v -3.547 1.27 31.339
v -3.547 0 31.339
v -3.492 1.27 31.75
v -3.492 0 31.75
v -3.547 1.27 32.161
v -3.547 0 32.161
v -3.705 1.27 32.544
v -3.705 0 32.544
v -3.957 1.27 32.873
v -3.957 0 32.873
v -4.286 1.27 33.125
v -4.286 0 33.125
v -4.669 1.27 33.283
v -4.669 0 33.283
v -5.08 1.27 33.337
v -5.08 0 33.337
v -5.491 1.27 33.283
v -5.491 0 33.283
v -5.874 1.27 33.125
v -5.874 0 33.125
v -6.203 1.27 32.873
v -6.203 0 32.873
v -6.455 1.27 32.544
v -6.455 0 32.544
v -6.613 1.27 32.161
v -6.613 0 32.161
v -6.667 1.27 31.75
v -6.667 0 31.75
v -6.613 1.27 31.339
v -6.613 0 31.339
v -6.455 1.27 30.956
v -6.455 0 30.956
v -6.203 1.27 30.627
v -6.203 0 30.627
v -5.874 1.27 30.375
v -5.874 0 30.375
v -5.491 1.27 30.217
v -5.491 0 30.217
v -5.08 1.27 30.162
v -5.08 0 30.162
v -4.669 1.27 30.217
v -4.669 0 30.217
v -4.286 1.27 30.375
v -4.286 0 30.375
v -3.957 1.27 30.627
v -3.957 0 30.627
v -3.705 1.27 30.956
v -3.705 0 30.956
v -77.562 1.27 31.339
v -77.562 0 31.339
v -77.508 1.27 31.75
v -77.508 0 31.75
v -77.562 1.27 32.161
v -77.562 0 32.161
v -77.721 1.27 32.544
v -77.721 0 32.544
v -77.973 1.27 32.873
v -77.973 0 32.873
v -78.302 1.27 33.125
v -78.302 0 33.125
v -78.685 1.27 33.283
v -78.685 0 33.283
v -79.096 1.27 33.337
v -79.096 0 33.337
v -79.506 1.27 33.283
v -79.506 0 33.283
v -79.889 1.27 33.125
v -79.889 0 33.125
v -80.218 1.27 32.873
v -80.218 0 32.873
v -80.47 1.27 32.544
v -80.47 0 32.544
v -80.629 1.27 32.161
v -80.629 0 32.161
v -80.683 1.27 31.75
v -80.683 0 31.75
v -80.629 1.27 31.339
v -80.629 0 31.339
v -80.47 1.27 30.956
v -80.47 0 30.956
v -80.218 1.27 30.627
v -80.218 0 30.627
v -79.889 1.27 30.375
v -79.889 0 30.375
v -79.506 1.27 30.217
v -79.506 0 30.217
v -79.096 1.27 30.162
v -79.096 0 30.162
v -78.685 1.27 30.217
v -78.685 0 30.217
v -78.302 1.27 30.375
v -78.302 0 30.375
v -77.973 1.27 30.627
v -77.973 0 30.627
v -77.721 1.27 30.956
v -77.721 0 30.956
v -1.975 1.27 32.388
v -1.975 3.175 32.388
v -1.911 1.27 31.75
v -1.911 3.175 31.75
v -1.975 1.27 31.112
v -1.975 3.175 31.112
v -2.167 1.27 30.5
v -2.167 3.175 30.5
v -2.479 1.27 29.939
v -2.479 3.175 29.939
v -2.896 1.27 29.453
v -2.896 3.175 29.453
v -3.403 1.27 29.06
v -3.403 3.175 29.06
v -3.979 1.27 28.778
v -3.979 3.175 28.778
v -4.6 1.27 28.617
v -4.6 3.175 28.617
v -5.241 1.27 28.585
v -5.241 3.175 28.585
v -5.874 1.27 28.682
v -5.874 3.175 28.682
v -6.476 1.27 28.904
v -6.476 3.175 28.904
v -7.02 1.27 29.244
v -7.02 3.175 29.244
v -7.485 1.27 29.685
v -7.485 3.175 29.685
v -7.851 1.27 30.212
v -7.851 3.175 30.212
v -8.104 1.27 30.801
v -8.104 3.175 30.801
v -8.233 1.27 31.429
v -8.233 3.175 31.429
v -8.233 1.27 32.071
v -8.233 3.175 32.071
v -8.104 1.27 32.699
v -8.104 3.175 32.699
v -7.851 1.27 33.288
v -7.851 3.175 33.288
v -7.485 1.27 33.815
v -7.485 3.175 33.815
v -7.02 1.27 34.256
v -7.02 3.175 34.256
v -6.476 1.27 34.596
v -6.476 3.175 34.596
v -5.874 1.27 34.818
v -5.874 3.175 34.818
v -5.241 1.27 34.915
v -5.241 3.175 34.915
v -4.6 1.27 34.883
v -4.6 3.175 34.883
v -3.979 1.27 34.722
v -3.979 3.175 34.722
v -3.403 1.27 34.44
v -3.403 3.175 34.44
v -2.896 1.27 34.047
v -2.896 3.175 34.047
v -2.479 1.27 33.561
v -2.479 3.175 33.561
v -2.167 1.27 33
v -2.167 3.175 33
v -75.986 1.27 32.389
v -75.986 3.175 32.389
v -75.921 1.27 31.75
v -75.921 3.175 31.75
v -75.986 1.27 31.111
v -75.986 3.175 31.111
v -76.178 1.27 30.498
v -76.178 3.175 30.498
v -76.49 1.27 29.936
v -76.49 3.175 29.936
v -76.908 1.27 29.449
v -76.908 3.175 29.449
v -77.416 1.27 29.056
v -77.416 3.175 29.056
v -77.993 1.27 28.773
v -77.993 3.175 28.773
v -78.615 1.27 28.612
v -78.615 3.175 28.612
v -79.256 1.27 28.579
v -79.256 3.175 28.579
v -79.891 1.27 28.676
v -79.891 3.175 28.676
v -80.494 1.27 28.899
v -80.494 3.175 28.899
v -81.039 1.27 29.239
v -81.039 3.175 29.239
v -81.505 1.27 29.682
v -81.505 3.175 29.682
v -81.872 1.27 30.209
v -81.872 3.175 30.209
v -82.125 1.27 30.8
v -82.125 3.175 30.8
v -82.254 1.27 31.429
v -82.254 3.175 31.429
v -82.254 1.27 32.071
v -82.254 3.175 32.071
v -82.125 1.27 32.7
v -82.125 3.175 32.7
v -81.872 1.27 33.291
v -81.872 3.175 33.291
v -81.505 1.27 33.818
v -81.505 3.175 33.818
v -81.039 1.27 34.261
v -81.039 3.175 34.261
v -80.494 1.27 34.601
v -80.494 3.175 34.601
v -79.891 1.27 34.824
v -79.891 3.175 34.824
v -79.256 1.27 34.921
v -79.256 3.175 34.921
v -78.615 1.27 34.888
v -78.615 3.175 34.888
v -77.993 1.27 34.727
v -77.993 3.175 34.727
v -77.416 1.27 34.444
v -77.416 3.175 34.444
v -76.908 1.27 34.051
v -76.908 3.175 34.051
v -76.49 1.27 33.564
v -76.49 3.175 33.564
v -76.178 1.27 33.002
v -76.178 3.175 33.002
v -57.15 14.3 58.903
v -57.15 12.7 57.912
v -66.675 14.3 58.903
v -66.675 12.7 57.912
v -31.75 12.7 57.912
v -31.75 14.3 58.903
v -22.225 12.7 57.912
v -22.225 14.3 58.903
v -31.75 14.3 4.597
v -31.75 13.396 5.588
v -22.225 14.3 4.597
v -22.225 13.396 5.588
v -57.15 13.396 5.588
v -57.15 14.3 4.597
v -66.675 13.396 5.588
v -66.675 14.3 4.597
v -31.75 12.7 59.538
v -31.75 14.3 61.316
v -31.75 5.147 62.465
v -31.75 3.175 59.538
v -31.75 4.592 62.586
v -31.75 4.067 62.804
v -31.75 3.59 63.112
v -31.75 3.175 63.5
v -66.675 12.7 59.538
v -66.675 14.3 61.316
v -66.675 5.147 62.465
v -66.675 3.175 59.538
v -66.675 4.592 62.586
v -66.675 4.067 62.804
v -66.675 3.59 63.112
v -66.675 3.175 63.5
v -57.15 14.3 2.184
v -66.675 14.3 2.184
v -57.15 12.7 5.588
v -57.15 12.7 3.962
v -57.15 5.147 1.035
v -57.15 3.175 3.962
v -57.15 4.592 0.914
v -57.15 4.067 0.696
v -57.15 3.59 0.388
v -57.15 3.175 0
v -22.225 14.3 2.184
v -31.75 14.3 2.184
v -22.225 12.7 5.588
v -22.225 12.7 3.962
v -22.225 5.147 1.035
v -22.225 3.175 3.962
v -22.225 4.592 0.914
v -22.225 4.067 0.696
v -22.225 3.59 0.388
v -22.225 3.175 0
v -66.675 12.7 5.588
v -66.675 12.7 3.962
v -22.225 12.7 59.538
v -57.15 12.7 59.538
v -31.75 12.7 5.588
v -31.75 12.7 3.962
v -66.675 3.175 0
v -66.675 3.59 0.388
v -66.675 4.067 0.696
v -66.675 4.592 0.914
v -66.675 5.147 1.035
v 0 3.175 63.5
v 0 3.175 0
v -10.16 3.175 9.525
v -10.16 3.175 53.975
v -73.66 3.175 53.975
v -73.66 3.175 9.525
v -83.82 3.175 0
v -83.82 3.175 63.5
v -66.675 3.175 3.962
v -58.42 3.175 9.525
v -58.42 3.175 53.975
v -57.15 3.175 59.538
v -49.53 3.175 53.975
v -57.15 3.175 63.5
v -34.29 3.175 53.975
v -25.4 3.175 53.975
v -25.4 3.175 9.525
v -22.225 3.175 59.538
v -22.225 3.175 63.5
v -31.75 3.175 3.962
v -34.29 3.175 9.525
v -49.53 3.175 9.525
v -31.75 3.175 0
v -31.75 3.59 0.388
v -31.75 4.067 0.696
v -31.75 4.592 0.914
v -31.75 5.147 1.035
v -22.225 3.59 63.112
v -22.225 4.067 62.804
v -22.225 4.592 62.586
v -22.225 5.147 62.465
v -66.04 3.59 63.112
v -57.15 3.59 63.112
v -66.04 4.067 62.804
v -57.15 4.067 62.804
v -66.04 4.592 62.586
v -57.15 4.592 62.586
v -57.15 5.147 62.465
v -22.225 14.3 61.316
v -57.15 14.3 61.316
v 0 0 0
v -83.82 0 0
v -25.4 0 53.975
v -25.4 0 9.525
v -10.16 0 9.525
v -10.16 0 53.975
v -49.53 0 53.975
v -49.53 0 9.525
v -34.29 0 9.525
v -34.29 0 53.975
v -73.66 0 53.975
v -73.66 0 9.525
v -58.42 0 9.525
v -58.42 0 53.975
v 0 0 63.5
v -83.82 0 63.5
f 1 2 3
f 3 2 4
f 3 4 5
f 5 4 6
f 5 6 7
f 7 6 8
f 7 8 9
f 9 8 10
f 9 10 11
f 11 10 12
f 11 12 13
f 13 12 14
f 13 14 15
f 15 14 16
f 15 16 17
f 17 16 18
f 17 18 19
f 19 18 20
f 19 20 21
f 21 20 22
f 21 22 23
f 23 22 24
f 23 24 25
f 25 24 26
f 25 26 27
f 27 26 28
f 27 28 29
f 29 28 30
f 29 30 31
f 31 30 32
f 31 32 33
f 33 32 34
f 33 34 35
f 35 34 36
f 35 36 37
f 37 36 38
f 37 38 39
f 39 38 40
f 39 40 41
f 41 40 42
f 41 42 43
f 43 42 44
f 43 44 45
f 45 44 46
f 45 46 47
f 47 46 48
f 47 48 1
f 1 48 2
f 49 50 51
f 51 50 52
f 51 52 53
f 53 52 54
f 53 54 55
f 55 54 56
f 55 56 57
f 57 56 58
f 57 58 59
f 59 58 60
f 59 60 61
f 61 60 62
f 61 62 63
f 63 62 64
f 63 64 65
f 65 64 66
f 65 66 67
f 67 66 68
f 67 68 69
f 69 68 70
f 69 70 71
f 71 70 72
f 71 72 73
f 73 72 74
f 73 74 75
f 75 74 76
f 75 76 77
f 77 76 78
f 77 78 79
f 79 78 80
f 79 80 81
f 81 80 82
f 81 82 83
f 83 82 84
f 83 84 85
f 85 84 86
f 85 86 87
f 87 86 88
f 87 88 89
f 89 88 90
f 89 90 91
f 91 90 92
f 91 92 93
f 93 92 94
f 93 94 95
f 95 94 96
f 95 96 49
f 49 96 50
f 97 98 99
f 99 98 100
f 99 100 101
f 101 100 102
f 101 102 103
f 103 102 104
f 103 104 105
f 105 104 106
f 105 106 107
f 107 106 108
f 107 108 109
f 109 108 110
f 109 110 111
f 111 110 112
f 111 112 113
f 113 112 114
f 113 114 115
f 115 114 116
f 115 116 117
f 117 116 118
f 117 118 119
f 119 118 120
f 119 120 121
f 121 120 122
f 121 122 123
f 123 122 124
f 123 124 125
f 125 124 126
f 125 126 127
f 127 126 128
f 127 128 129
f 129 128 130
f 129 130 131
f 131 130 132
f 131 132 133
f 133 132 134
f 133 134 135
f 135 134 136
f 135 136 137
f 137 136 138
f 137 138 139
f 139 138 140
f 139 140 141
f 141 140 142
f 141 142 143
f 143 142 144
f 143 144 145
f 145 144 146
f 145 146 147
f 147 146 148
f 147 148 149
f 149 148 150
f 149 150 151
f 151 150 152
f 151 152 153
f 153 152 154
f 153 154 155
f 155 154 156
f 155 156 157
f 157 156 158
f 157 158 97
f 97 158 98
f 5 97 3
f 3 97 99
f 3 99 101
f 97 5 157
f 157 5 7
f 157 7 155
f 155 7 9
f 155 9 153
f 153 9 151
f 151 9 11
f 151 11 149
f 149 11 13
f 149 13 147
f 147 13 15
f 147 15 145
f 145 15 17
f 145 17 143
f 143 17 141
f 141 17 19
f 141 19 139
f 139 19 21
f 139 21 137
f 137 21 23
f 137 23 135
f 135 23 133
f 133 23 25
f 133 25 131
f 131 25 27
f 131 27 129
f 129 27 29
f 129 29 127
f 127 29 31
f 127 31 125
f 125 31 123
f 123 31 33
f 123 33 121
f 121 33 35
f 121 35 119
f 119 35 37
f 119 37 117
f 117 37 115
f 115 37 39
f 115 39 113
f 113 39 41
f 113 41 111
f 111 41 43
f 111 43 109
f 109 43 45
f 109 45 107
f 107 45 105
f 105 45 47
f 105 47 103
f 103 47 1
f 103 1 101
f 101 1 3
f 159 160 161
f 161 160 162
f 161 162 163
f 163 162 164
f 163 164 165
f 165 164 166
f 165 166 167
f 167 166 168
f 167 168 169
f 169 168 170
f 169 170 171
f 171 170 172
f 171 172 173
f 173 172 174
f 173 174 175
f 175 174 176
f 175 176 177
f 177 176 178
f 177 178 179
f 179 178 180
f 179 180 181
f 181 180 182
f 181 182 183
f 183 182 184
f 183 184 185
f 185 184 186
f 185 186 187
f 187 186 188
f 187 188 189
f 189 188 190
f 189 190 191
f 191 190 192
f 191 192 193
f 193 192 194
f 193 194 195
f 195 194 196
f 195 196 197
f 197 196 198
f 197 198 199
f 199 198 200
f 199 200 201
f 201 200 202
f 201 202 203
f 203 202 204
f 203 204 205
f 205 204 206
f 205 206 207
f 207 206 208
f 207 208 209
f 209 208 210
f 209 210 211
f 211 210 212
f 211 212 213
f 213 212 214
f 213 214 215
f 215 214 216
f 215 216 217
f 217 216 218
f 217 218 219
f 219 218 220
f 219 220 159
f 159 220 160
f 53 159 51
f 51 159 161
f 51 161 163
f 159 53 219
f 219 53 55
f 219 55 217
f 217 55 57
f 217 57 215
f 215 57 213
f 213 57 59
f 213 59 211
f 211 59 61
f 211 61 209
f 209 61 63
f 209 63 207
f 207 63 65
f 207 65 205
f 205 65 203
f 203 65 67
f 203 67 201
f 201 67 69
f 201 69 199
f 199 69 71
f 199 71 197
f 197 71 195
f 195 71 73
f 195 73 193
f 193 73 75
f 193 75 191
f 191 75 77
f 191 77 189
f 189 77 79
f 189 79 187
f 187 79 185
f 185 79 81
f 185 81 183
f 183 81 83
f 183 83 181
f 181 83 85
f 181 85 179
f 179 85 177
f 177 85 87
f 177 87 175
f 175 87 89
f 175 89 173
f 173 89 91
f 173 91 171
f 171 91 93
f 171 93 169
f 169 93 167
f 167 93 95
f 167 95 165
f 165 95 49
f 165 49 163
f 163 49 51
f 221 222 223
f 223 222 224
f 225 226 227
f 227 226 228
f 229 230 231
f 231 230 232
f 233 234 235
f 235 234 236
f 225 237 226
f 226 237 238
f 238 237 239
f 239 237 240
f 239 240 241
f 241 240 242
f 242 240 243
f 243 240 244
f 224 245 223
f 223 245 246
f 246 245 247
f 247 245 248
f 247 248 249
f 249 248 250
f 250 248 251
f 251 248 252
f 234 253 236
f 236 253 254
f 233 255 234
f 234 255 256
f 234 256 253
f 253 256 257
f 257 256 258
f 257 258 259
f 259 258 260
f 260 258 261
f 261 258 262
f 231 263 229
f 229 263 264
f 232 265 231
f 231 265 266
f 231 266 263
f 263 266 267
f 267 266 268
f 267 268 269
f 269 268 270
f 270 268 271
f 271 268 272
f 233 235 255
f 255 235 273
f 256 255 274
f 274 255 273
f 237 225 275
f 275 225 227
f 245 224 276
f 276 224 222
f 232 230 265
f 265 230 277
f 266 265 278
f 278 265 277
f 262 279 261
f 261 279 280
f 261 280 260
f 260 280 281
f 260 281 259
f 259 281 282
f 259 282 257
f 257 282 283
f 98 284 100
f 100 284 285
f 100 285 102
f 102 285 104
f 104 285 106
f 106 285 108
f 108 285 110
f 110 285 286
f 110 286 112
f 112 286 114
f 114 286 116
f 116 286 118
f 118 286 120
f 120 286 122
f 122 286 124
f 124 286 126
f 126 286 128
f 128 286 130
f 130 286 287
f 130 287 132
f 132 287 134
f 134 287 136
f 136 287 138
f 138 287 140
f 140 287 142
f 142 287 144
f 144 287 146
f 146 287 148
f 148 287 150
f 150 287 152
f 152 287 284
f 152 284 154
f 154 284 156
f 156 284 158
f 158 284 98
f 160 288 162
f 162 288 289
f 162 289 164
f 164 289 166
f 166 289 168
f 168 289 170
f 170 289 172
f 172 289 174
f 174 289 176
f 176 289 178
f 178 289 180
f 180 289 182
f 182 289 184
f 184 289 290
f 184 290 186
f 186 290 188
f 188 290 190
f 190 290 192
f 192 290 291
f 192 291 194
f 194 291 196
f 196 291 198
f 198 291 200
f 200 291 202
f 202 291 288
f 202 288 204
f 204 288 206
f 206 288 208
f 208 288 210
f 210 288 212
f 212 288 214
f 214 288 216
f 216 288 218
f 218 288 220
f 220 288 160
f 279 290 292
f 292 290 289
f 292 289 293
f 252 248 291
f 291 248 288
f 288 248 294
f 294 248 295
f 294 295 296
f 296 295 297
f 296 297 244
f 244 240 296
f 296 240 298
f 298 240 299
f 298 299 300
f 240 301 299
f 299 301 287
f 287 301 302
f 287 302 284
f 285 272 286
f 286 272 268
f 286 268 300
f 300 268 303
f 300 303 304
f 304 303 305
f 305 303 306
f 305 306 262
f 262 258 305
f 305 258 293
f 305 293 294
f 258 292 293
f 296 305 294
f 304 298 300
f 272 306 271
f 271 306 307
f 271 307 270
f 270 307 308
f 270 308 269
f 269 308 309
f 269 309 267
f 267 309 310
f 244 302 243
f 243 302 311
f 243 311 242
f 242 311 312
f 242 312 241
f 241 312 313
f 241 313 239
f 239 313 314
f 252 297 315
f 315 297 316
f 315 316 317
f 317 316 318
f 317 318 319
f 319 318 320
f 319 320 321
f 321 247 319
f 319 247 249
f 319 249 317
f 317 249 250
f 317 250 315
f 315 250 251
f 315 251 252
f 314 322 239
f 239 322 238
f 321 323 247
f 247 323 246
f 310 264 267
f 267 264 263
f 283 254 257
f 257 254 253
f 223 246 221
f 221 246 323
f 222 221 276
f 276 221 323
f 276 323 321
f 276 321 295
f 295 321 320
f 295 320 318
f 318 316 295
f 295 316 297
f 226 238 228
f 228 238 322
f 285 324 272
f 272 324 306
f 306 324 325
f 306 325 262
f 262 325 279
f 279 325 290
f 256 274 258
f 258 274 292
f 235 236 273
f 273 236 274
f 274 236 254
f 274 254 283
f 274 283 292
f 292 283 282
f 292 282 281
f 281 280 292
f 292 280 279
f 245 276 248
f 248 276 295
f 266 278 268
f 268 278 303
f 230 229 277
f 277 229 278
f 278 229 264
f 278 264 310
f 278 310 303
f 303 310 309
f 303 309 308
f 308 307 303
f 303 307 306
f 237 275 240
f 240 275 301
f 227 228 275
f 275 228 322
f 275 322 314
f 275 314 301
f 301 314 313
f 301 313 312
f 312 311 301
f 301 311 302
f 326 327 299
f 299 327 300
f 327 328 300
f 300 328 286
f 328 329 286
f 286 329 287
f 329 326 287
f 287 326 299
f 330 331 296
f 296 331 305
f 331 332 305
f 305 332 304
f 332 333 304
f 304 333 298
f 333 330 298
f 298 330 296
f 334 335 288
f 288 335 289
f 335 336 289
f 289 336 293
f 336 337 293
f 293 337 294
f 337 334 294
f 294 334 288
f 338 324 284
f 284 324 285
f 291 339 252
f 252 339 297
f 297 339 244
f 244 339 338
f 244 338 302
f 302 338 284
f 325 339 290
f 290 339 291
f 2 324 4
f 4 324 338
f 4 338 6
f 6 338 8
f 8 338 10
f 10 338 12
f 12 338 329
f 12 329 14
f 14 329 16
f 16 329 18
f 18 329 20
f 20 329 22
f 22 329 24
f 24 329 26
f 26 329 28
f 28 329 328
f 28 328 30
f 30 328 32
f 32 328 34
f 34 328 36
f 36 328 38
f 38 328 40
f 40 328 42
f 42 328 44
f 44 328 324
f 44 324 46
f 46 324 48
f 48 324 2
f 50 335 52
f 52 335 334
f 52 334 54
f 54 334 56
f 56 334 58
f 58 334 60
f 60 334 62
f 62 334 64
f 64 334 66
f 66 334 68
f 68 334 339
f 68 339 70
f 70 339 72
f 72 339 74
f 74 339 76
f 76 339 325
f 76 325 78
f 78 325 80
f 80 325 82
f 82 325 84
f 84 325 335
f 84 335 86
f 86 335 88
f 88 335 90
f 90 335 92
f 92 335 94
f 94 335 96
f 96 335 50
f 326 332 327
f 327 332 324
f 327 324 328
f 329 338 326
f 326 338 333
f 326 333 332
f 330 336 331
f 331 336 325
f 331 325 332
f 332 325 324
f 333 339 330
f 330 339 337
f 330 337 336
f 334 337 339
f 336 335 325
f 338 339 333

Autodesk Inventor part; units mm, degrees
ref_plane "YZ Plane" through (0, 0, 0) normal (1, 0, 0) x (0, 1, 0)
ref_plane "XZ Plane" through (0, 0, 0) normal (0, 1, 0) x (-1, 0, 0)
ref_plane "XY Plane" through (0, 0, 0) normal (0, 0, 1) x (1, 0, 0)
sketch "Sketch1" plane through (0, 0, 0) normal (0, 1, 0) x (-1, 0, 0)
  line L0 (0, 0) -> (83.82, 0)
  line L1 (83.82, 0) -> (83.82, 63.5)
  line L2 (83.82, 63.5) -> (0, 63.5)
  line L3 (0, 63.5) -> (0, 0)
  line L4 (73.66, 53.975) -> (58.42, 53.975)
  line L5 (58.42, 53.975) -> (58.42, 9.525)
  line L6 (58.42, 9.525) -> (73.66, 9.525)
  line L7 (73.66, 9.525) -> (73.66, 53.975)
  line L8 (49.53, 53.975) -> (34.29, 53.975)
  line L9 (34.29, 53.975) -> (34.29, 9.525)
  line L10 (34.29, 9.525) -> (49.53, 9.525)
  line L11 (49.53, 9.525) -> (49.53, 53.975)
  line L12 (25.4, 53.975) -> (10.16, 53.975)
  line L13 (10.16, 53.975) -> (10.16, 9.525)
  line L14 (10.16, 9.525) -> (25.4, 9.525)
  line L15 (25.4, 9.525) -> (25.4, 53.975)
  dimension "d0" = 83.82
  dimension "d1" = 63.5
  dimension "d41" = 10.16
  dimension "d42" = 8.89
  dimension "d43" = 8.89
  dimension "d44" = 15.24
  dimension "d45" = 15.24
  dimension "d46" = 15.24
extrude "Extrusion1" add sketch "Sketch1" along normal blind 3.175
sketch "Sketch4" plane through (0, 3.175, 0) normal (0, 1, 0) x (1, 0, 0)
  line L0 (-83.82, -63.5) -> (0, -63.5) projected
  line L1 (0, 0) -> (-83.82, 0) projected
  line L2 (-66.675, 0) -> (-57.15, 0)
  line L3 (-57.15, 0) -> (-57.15, -3.9624)
  line L4 (-57.15, -3.9624) -> (-66.675, -3.9624)
  line L5 (-66.675, -3.9624) -> (-66.675, 0)
  line L6 (-31.75, 0) -> (-22.225, 0)
  line L7 (-22.225, 0) -> (-22.225, -3.9624)
  line L8 (-22.225, -3.9624) -> (-31.75, -3.9624)
  line L9 (-31.75, -3.9624) -> (-31.75, 0)
  line L10 (-66.675, -63.5) -> (-57.15, -63.5)
  line L11 (-57.15, -63.5) -> (-57.15, -59.5376)
  line L12 (-57.15, -59.5376) -> (-66.675, -59.5376)
  line L13 (-66.675, -59.5376) -> (-66.675, -63.5)
  line L14 (-31.75, -63.5) -> (-22.225, -63.5)
  line L15 (-22.225, -63.5) -> (-22.225, -59.5376)
  line L16 (-22.225, -59.5376) -> (-31.75, -59.5376)
  line L17 (-31.75, -59.5376) -> (-31.75, -63.5)
extrude "Extrusion4" add sketch "Sketch4" along normal blind 11.1252
sketch "Sketch5" plane through (-22.225, 3.175, 63.5) normal (1, 0, 0) x (0, 0, -1)
  line L0 (3.9624, 0) -> (0, 0) projected
  line L1 (3.9624, 0) -> (3.9624, 11.1252) projected
  line L2 (0, 11.1252) -> (3.9624, 11.1252) projected
  line L3 (0, 0) -> (0, 11.1252) projected
  line L4 (3.9624, 12.7) -> (2.1844, 12.7)
  line L5 (3.9624, -0.6232) -> (0.7874, -0.6232)
  line L6 (2.1844, 11.1252) -> (0.7874, 0)
  line L7 (0.7874, 0) -> (0, 0)
  line L8 (0, 0) -> (0, 11.1252)
  line L9 (0, 11.1252) -> (2.1844, 11.1252)
  line L10 (59.5376, 0) -> (63.5, 0)
  line L11 (59.5376, 0) -> (59.5376, 11.1252)
  line L12 (63.5, 11.1252) -> (59.5376, 11.1252)
  line L13 (63.5, 0) -> (63.5, 11.1252)
  line L14 (59.5376, 12.7) -> (61.3156, 12.7)
  line L15 (59.5376, -0.6232) -> (62.7126, -0.6232)
  line L16 (61.3156, 11.1252) -> (62.7126, 0)
  line L17 (62.7126, 0) -> (63.5, 0)
  line L18 (63.5, 0) -> (63.5, 11.1252)
  line L19 (63.5, 11.1252) -> (61.3156, 11.1252)
  point P0 (63.5, -3.175)
  dimension "d17" = 1.778
  dimension "d18" = 3.175
extrude "Extrusion5" cut sketch "Sketch5" against normal blind 44.45 contours L0 L3 L2 L6 | L16 L12 L13 L10
fillet "Fillet1" radius 3.175 4 edges at (-61.9125, 3.175, 62.7126) (-26.9875, 3.175, 62.7126) (-26.9875, 3.175, 0.7874) (-61.9125, 3.175, 0.7874)
sketch "Sketch6" plane through (0, 14.3002, 0) normal (0, 1, 0) x (1, 0, 0)
  line L0 (-22.225, -59.5376) -> (-31.75, -59.5376) projected
  line L1 (-31.75, -59.5376) -> (-22.225, -59.5376)
  line L2 (-22.225, -59.5376) -> (-22.225, -57.912)
  line L3 (-22.225, -57.912) -> (-31.75, -57.912)
  line L4 (-31.75, -57.912) -> (-31.75, -59.5376)
  line L5 (-57.15, -59.5376) -> (-66.675, -59.5376)
  line L6 (-66.675, -59.5376) -> (-66.675, -57.912)
  line L7 (-66.675, -57.912) -> (-57.15, -57.912)
  line L8 (-57.15, -57.912) -> (-57.15, -59.5376)
  line L9 (-31.75, -2.1844) -> (-22.225, -2.1844)
  line L10 (-22.225, -2.1844) -> (-22.225, -3.9624)
  line L11 (-22.225, -3.9624) -> (-31.75, -3.9624)
  line L12 (-31.75, -3.9624) -> (-31.75, -2.1844)
  line L13 (-31.75, -3.9624) -> (-22.225, -3.9624)
  line L14 (-22.225, -3.9624) -> (-22.225, -5.588)
  line L15 (-22.225, -5.588) -> (-31.75, -5.588)
  line L16 (-31.75, -5.588) -> (-31.75, -3.9624)
  line L17 (-57.15, -3.9624) -> (-66.675, -3.9624)
  line L18 (-66.675, -3.9624) -> (-66.675, -5.588)
  line L19 (-66.675, -5.588) -> (-57.15, -5.588)
  line L20 (-57.15, -5.588) -> (-57.15, -3.9624)
  line L21 (-66.675, -3.9624) -> (-57.15, -3.9624) projected
  point P0 (0, 0)
  dimension "d50" = 1.6256
  dimension "d51" = 1.6256
  dimension "d52" = 1.6256
  dimension "d53" = 1.6256
  dimension "d54" = 0
extrude "Extrusion6" add sketch "Sketch6" against normal blind 1.6002 contours L0 L4 L3 L2 | L5 L6 L7 L8 | L11 L14 L15 L16 | L20 L19 L18 L17
sketch "Sketch7" plane through (-22.225, 3.175, 63.5) normal (1, 0, 0) x (0, 0, -1)
  line L0 (5.588, 11.1252) -> (5.588, 9.525) projected
  line L1 (2.1844, 11.1252) -> (5.588, 11.1252) projected
  line L2 (4.5974, 11.1252) -> (5.588, 9.525)
  line L3 (4.5974, 11.1252) -> (5.588, 11.1252)
  line L4 (5.588, 9.525) -> (5.588, 11.1252)
  line L5 (61.3156, 11.1252) -> (62.4649, 1.9722)
  arc A0 (62.4649, 1.9722) -> (63.5, 0) centre (65.6152, 2.3678) ccw
  line L6 (59.5376, 0) -> (63.5, 0)
  line L7 (59.5376, 0) -> (59.5376, 9.525)
  line L8 (57.15, 9.525) -> (59.5376, 9.525)
  line L9 (57.15, 11.1252) -> (57.15, 9.525)
  line L10 (61.3156, 11.1252) -> (57.15, 11.1252)
  line L11 (58.9026, 11.1252) -> (57.15, 9.525)
  line L12 (58.9026, 11.1252) -> (57.15, 11.1252)
  line L13 (57.15, 9.525) -> (57.15, 11.1252)
  point P0 (63.5, -3.175)
extrude "Extrusion7" cut sketch "Sketch7" against normal blind 44.45 contours L0 L2 L1 | L11 L9 L10
sketch "Sketch8" plane through (0, 3.175, 0) normal (0, 1, 0) x (1, 0, 0)
  circle A0 centre (-79.0956, -31.75) radius 3.175
  circle A1 centre (-5.08, -31.75) radius 3.1695
  line L0 (0, -63.5) -> (0, 0) projected
  line L1 (-66.675, 0) -> (-83.82, 0) projected
  line L2 (0, 0) -> (-22.225, 0) projected
  dimension "d29" = 74.0156
  dimension "d47" = 5.08
  dimension "d48" = 31.75
  dimension "d49" = 31.75
extrude "Extrusion8" cut sketch "Sketch8" against normal blind 1.905
sketch "Sketch9" plane through (0, 3.175, 0) normal (0, 1, 0) x (1, 0, 0)
  circle A0 centre (-5.08, -31.75) radius 3.1695 projected
  circle A1 centre (-79.0956, -31.75) radius 3.175 projected
  circle A2 centre (-79.0956, -31.75) radius 1.5875
  circle A3 centre (-5.08, -31.75) radius 1.5875
extrude "Extrusion9" cut sketch "Sketch9" against normal blind 3.175 contours A2 | A3
sketch "Sketch12" plane through (0, 12.7, 0) normal (0, -1, 0) x (1, 0, 0)
  line L0 (-22.225, 3.9624) -> (-22.225, 5.588) projected
  line L1 (-22.225, 5.588) -> (-31.75, 5.588) projected
  line L2 (-22.225, 3.9624) -> (-31.75, 3.9624)
  line L3 (-31.75, 3.9624) -> (-31.75, 5.588)
  line L4 (-31.75, 5.588) -> (-22.225, 5.588)
  line L5 (-22.225, 5.588) -> (-22.225, 3.9624)
  line L6 (-57.15, 3.9624) -> (-66.675, 3.9624) projected
  line L7 (-57.15, 5.588) -> (-66.675, 5.588) projected
  line L8 (-57.15, 3.9624) -> (-66.675, 3.9624)
  line L9 (-66.675, 3.9624) -> (-66.675, 5.588)
  line L10 (-66.675, 5.588) -> (-57.15, 5.588)
  line L11 (-57.15, 5.588) -> (-57.15, 3.9624)
  line L12 (-66.675, 57.912) -> (-57.15, 57.912) projected
  line L13 (-57.15, 59.5376) -> (-66.675, 59.5376)
  line L14 (-66.675, 59.5376) -> (-66.675, 57.912)
  line L15 (-66.675, 57.912) -> (-57.15, 57.912)
  line L16 (-57.15, 57.912) -> (-57.15, 59.5376)
  line L17 (-31.75, 57.912) -> (-22.225, 57.912) projected
  line L18 (-31.75, 59.5376) -> (-22.225, 59.5376) projected
  line L19 (-22.225, 57.912) -> (-31.75, 57.912)
  line L20 (-31.75, 57.912) -> (-31.75, 59.5376)
  line L21 (-31.75, 59.5376) -> (-22.225, 59.5376)
  line L22 (-22.225, 59.5376) -> (-22.225, 57.912)
  point P0 (0, 0)
equation "\"d43\" = d42"
equation "\"d45\" = d44"
equation "\"d46\" = d44"
equation "\"d51\" = d50"
equation "\"d52\" = d50"
equation "\"d53\" = d50"
properties part number "_3DPrint"
